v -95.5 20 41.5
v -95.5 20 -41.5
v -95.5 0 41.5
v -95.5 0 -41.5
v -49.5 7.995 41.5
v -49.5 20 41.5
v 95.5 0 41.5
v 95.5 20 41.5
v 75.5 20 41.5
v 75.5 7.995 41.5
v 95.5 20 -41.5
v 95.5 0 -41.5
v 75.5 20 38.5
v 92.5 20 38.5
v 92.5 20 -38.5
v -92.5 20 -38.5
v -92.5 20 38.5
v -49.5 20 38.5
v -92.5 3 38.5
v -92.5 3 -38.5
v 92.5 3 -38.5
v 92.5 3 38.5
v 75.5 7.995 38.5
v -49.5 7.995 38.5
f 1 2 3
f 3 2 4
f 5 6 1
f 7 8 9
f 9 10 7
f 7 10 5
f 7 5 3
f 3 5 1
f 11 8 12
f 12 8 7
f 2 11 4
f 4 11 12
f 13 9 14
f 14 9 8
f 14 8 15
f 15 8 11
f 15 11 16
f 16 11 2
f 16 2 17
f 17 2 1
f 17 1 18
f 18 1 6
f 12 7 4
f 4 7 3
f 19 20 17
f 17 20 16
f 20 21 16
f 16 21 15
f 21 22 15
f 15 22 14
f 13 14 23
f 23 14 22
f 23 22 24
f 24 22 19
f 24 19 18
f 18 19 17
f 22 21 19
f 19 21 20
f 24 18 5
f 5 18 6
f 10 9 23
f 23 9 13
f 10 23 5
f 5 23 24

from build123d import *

# Parameters (mm, degrees)
SKETCH1_W           = 191
SKETCH1_H           = 83
BOSS_EXTRUDE2_DEPTH = 20
SKETCH3_W           = 185
SKETCH3_H           = 77
CUT_EXTRUDE2_DEPTH  = 17
SKETCH5_W           = 125
SKETCH5_H           = 21.405857205
CUT_EXTRUDE3_DEPTH  = 17


with BuildPart() as part:
    # Sketch1 → Boss-Extrude2 (new body)
    with BuildSketch(Plane(origin=(0, 0, 0), x_dir=(1, 0, 0), z_dir=(0, 1, 0))):
        Rectangle(SKETCH1_W, SKETCH1_H)
    extrude(amount=BOSS_EXTRUDE2_DEPTH)

    # Sketch3 → Cut-Extrude2 (cut)
    with BuildSketch(Plane(origin=(0, 20, 0), x_dir=(1, 0, 0), z_dir=(0, 1, 0))):
        Rectangle(SKETCH3_W, SKETCH3_H)
    extrude(amount=-CUT_EXTRUDE2_DEPTH, mode=Mode.SUBTRACT)

    # Sketch5 → Cut-Extrude3 (cut)
    with BuildSketch(Plane.XY.offset(41.5)):
        with Locations((13, 18.697690384)):
            Rectangle(SKETCH5_W, SKETCH5_H)
    extrude(amount=-CUT_EXTRUDE3_DEPTH, mode=Mode.SUBTRACT)


solid = part.part
